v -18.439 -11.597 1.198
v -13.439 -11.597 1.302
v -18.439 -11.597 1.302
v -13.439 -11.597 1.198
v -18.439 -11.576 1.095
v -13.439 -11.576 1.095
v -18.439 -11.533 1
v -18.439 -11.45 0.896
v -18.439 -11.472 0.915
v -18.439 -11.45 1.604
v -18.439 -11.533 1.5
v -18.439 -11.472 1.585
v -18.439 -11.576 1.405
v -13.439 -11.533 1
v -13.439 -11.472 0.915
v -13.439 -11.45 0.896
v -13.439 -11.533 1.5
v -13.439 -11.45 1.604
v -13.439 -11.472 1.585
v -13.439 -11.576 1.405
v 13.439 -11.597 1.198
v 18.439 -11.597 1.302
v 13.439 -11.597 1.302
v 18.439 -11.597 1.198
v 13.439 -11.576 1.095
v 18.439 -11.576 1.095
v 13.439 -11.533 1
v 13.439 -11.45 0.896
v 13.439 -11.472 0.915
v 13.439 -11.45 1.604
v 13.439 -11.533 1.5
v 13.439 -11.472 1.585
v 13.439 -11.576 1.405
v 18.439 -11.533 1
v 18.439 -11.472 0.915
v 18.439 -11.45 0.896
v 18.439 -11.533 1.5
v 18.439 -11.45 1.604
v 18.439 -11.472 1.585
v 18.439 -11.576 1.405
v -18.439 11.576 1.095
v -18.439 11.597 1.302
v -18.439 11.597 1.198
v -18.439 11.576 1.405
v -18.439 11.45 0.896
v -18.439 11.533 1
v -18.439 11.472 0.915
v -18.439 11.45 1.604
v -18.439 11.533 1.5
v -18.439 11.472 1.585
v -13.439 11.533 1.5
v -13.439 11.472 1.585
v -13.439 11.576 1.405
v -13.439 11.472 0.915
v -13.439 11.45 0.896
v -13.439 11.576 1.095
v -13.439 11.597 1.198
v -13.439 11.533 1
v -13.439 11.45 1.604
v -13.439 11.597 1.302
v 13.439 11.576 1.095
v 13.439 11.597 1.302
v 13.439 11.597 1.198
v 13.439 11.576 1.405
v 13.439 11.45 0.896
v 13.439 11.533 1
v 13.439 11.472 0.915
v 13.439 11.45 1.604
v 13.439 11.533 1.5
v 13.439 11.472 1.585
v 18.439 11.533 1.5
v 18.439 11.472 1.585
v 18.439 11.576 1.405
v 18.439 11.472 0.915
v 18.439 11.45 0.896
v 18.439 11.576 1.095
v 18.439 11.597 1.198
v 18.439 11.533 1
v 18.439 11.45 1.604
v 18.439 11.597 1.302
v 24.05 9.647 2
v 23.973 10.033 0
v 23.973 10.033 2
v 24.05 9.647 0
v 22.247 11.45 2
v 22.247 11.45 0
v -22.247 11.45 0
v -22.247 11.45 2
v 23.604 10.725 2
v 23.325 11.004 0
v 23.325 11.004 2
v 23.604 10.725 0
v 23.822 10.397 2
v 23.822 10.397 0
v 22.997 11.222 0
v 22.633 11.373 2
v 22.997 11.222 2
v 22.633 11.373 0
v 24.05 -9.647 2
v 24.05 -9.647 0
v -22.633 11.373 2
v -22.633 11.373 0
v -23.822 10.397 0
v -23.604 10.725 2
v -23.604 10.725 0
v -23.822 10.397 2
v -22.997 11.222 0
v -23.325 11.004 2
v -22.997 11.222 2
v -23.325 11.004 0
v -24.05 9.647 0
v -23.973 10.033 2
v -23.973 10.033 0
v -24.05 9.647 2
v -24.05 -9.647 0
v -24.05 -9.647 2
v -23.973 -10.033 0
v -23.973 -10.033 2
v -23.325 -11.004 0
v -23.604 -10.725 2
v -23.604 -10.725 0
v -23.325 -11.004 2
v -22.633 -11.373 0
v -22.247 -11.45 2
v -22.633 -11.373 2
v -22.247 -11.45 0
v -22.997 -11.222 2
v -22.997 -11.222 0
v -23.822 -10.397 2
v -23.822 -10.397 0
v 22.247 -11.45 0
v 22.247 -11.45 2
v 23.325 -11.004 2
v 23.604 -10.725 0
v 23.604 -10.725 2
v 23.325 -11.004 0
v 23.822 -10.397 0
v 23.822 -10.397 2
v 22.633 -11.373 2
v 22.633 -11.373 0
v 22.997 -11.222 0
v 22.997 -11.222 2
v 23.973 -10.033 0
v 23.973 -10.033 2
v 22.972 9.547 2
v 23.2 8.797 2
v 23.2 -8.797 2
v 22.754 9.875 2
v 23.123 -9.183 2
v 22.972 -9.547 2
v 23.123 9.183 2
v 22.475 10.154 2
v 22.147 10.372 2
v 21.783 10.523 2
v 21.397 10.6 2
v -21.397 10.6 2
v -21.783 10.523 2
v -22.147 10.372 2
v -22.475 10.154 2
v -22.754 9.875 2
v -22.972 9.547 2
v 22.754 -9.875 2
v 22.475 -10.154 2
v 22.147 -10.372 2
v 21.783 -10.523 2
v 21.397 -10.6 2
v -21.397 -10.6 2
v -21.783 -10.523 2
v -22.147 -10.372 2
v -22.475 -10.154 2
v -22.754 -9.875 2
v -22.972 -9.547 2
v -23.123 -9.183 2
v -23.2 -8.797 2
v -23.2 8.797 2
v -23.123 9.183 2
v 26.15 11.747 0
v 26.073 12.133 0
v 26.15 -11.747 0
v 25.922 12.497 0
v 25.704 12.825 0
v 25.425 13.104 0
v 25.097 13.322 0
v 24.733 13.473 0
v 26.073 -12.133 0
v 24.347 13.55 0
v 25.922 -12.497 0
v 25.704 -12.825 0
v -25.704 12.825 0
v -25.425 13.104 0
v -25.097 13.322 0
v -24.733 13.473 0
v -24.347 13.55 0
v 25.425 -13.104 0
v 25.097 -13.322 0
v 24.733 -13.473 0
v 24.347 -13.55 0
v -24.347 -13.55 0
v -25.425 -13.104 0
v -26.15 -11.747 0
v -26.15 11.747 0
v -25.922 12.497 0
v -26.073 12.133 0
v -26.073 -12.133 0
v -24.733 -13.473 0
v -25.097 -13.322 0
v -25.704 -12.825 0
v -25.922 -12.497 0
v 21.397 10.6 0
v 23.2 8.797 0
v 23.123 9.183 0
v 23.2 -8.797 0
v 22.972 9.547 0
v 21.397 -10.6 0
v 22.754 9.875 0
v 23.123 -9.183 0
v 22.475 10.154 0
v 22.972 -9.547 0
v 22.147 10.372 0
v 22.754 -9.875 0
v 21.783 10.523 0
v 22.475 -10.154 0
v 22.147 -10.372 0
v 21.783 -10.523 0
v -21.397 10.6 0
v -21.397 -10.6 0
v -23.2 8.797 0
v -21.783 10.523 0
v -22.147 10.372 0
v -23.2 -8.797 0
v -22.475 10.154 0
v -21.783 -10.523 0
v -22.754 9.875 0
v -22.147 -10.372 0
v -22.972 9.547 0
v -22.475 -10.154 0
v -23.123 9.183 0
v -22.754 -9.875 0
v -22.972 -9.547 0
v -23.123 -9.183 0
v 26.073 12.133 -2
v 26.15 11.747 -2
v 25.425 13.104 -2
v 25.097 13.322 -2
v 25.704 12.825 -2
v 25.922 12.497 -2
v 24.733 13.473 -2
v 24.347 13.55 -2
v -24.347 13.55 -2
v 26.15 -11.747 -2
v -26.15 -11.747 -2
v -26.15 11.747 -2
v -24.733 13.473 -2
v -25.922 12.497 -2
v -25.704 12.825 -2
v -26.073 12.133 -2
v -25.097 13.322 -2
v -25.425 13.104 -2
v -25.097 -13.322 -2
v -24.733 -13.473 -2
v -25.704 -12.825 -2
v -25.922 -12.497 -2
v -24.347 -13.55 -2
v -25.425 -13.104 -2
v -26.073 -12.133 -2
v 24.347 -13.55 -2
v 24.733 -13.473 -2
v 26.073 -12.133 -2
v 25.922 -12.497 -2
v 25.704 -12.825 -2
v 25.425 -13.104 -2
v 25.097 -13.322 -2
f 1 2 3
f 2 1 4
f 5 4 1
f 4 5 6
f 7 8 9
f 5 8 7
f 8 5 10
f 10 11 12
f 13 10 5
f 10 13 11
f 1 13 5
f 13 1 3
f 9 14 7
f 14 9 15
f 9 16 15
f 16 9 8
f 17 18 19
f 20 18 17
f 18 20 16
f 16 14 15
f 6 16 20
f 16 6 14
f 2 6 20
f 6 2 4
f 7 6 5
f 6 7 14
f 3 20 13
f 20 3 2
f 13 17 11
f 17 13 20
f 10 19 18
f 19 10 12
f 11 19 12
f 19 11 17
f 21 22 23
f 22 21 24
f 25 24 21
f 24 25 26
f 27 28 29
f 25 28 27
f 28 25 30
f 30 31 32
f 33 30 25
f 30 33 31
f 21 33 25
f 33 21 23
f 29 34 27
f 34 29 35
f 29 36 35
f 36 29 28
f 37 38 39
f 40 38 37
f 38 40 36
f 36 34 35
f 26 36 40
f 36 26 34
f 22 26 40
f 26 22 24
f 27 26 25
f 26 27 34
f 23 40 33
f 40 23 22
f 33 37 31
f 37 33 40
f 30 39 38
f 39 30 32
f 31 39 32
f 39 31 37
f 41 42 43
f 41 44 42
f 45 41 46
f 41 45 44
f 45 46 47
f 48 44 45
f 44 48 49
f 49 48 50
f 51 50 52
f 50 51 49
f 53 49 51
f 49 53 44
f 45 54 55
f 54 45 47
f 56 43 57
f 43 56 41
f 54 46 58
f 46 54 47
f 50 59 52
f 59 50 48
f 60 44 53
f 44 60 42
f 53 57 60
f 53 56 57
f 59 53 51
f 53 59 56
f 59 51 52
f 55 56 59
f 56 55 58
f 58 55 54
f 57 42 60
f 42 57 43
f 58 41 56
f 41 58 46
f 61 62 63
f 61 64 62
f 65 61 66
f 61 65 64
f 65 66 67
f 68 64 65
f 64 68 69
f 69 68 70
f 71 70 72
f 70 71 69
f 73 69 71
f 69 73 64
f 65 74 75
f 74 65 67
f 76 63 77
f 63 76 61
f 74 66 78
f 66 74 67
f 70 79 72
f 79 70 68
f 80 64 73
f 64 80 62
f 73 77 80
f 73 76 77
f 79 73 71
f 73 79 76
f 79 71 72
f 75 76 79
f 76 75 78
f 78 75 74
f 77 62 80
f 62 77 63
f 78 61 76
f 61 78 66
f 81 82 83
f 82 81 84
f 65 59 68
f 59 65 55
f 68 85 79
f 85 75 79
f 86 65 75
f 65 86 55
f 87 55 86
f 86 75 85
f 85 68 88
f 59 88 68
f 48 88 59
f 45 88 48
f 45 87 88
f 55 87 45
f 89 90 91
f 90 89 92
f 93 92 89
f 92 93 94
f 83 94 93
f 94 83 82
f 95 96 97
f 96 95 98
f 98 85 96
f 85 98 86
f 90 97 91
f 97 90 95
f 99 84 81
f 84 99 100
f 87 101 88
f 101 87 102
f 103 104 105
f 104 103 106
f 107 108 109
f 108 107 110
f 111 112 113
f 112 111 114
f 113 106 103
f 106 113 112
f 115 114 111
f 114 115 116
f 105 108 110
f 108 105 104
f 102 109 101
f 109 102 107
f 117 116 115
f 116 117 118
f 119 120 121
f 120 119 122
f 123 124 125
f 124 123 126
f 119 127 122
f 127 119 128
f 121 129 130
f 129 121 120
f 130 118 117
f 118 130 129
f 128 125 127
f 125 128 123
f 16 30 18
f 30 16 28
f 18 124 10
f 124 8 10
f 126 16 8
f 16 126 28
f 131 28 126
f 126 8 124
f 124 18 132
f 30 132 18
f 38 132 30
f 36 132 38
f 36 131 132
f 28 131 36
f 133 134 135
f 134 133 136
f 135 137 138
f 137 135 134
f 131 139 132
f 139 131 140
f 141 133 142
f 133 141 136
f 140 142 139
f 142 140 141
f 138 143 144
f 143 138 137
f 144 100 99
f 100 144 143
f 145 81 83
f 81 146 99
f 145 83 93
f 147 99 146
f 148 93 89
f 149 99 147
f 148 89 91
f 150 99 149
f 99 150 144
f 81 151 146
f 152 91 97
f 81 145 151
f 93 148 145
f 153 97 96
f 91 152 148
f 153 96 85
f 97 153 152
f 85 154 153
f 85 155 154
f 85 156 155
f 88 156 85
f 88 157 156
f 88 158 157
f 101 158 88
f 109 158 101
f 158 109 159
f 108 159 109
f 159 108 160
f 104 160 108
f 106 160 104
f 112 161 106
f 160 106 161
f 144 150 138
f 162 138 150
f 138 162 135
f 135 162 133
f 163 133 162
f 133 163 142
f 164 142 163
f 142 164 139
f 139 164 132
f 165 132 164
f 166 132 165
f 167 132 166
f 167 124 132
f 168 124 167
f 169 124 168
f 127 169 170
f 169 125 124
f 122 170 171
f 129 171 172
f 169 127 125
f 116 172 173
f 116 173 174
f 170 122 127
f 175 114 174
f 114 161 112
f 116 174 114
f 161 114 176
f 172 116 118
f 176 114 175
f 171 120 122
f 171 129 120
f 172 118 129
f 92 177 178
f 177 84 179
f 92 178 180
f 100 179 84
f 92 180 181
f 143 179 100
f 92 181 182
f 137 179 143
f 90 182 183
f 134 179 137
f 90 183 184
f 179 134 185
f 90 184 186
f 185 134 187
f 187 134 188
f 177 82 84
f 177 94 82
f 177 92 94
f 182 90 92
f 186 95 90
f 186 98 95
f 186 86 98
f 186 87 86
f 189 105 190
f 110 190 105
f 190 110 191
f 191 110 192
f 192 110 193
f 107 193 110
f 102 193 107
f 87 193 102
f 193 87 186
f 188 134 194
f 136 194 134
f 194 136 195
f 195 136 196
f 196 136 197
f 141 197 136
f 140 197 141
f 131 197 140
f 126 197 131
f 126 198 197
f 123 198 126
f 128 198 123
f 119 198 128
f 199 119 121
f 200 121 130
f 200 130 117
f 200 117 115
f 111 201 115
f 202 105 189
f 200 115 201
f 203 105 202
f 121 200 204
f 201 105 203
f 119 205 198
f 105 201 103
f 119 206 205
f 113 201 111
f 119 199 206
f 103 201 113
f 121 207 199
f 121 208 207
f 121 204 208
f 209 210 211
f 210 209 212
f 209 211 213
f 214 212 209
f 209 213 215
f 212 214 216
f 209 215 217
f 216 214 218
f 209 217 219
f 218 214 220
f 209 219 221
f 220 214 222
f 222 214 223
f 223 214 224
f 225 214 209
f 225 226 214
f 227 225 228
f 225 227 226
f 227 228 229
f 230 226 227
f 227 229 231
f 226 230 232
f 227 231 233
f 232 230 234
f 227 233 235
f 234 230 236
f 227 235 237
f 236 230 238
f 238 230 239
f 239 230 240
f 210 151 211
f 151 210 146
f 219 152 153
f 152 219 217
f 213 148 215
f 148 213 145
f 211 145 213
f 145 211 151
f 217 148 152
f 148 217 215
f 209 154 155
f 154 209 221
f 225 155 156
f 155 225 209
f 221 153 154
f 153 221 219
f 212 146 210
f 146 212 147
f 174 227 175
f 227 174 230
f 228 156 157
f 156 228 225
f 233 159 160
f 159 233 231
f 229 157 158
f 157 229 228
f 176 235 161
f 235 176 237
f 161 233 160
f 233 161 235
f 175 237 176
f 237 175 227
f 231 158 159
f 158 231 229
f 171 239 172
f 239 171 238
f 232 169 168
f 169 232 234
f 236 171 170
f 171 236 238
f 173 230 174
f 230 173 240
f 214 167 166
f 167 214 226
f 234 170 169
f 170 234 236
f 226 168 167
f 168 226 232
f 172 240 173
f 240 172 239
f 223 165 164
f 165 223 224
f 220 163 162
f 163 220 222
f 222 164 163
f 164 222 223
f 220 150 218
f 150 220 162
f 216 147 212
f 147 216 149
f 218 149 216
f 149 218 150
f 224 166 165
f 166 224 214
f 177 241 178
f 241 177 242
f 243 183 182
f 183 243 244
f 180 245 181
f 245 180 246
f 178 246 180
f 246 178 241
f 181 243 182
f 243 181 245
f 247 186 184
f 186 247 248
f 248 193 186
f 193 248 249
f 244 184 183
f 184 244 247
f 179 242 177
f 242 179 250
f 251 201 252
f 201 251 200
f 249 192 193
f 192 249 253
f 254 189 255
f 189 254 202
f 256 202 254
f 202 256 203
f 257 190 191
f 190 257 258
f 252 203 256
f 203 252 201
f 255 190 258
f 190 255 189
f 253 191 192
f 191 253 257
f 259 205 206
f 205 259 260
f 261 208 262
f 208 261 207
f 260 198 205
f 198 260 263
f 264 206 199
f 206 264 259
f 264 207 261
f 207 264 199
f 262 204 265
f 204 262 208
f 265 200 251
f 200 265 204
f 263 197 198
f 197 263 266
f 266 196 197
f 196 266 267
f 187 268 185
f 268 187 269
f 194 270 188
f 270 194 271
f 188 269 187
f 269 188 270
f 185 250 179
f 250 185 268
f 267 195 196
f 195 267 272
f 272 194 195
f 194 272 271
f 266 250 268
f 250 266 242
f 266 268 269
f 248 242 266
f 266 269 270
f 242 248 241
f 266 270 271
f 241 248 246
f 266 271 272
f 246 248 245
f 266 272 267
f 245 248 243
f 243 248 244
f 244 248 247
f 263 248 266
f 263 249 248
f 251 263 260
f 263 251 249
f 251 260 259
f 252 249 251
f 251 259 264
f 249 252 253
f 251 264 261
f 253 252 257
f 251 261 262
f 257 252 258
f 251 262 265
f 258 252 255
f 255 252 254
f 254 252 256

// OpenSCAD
/*
 * DSD Tech USB Relay Enclosure - Lid
 */
 
include <BOSL/constants.scad>
use <BOSL/shapes.scad>
use <BOSL/transforms.scad>

include <mylibs/components.scad>

include <DSD-Encl-common.scad>

lid_height = 2;
ridge_offset = 0.75;

$fn = 30;

build_it();

module build_it() {
  color("MediumSpringGreen")
  lid();
}

module lid() {
  // clips to hole lid in place
  color("red")
  ridges(1, 5, box_y-0.9);

  difference() {
    color("purple")
    cuboid([box_x-0.2, box_y-0.2, lid_height],
           align=V_TOP, fillet=2, edges=EDGES_Z_ALL);

    // hollow out rim
    down(0.01)
    cuboid([box_x-1.9, box_y-1.9, lid_height+1],
           align=V_TOP, fillet=2, edges=EDGES_Z_ALL);
  }
  
  // lid base
  down(box_wall)
  color("orange")
  cuboid([box_x+box_walls, box_y+box_walls, lid_height],
         align=V_TOP, fillet=2, edges=EDGES_Z_ALL);
}

module ridges(dia, len, dy) {
  echo(ridge_offset=ridge_offset);
  grid2d(rows=2, cols=2, spacing=[box_x*0.66, dy])
  translate([-len/2, 0, lid_height - ridge_offset])
  rotate([0, 90, 0])
  cylinder(d=dia, h=len);
}
